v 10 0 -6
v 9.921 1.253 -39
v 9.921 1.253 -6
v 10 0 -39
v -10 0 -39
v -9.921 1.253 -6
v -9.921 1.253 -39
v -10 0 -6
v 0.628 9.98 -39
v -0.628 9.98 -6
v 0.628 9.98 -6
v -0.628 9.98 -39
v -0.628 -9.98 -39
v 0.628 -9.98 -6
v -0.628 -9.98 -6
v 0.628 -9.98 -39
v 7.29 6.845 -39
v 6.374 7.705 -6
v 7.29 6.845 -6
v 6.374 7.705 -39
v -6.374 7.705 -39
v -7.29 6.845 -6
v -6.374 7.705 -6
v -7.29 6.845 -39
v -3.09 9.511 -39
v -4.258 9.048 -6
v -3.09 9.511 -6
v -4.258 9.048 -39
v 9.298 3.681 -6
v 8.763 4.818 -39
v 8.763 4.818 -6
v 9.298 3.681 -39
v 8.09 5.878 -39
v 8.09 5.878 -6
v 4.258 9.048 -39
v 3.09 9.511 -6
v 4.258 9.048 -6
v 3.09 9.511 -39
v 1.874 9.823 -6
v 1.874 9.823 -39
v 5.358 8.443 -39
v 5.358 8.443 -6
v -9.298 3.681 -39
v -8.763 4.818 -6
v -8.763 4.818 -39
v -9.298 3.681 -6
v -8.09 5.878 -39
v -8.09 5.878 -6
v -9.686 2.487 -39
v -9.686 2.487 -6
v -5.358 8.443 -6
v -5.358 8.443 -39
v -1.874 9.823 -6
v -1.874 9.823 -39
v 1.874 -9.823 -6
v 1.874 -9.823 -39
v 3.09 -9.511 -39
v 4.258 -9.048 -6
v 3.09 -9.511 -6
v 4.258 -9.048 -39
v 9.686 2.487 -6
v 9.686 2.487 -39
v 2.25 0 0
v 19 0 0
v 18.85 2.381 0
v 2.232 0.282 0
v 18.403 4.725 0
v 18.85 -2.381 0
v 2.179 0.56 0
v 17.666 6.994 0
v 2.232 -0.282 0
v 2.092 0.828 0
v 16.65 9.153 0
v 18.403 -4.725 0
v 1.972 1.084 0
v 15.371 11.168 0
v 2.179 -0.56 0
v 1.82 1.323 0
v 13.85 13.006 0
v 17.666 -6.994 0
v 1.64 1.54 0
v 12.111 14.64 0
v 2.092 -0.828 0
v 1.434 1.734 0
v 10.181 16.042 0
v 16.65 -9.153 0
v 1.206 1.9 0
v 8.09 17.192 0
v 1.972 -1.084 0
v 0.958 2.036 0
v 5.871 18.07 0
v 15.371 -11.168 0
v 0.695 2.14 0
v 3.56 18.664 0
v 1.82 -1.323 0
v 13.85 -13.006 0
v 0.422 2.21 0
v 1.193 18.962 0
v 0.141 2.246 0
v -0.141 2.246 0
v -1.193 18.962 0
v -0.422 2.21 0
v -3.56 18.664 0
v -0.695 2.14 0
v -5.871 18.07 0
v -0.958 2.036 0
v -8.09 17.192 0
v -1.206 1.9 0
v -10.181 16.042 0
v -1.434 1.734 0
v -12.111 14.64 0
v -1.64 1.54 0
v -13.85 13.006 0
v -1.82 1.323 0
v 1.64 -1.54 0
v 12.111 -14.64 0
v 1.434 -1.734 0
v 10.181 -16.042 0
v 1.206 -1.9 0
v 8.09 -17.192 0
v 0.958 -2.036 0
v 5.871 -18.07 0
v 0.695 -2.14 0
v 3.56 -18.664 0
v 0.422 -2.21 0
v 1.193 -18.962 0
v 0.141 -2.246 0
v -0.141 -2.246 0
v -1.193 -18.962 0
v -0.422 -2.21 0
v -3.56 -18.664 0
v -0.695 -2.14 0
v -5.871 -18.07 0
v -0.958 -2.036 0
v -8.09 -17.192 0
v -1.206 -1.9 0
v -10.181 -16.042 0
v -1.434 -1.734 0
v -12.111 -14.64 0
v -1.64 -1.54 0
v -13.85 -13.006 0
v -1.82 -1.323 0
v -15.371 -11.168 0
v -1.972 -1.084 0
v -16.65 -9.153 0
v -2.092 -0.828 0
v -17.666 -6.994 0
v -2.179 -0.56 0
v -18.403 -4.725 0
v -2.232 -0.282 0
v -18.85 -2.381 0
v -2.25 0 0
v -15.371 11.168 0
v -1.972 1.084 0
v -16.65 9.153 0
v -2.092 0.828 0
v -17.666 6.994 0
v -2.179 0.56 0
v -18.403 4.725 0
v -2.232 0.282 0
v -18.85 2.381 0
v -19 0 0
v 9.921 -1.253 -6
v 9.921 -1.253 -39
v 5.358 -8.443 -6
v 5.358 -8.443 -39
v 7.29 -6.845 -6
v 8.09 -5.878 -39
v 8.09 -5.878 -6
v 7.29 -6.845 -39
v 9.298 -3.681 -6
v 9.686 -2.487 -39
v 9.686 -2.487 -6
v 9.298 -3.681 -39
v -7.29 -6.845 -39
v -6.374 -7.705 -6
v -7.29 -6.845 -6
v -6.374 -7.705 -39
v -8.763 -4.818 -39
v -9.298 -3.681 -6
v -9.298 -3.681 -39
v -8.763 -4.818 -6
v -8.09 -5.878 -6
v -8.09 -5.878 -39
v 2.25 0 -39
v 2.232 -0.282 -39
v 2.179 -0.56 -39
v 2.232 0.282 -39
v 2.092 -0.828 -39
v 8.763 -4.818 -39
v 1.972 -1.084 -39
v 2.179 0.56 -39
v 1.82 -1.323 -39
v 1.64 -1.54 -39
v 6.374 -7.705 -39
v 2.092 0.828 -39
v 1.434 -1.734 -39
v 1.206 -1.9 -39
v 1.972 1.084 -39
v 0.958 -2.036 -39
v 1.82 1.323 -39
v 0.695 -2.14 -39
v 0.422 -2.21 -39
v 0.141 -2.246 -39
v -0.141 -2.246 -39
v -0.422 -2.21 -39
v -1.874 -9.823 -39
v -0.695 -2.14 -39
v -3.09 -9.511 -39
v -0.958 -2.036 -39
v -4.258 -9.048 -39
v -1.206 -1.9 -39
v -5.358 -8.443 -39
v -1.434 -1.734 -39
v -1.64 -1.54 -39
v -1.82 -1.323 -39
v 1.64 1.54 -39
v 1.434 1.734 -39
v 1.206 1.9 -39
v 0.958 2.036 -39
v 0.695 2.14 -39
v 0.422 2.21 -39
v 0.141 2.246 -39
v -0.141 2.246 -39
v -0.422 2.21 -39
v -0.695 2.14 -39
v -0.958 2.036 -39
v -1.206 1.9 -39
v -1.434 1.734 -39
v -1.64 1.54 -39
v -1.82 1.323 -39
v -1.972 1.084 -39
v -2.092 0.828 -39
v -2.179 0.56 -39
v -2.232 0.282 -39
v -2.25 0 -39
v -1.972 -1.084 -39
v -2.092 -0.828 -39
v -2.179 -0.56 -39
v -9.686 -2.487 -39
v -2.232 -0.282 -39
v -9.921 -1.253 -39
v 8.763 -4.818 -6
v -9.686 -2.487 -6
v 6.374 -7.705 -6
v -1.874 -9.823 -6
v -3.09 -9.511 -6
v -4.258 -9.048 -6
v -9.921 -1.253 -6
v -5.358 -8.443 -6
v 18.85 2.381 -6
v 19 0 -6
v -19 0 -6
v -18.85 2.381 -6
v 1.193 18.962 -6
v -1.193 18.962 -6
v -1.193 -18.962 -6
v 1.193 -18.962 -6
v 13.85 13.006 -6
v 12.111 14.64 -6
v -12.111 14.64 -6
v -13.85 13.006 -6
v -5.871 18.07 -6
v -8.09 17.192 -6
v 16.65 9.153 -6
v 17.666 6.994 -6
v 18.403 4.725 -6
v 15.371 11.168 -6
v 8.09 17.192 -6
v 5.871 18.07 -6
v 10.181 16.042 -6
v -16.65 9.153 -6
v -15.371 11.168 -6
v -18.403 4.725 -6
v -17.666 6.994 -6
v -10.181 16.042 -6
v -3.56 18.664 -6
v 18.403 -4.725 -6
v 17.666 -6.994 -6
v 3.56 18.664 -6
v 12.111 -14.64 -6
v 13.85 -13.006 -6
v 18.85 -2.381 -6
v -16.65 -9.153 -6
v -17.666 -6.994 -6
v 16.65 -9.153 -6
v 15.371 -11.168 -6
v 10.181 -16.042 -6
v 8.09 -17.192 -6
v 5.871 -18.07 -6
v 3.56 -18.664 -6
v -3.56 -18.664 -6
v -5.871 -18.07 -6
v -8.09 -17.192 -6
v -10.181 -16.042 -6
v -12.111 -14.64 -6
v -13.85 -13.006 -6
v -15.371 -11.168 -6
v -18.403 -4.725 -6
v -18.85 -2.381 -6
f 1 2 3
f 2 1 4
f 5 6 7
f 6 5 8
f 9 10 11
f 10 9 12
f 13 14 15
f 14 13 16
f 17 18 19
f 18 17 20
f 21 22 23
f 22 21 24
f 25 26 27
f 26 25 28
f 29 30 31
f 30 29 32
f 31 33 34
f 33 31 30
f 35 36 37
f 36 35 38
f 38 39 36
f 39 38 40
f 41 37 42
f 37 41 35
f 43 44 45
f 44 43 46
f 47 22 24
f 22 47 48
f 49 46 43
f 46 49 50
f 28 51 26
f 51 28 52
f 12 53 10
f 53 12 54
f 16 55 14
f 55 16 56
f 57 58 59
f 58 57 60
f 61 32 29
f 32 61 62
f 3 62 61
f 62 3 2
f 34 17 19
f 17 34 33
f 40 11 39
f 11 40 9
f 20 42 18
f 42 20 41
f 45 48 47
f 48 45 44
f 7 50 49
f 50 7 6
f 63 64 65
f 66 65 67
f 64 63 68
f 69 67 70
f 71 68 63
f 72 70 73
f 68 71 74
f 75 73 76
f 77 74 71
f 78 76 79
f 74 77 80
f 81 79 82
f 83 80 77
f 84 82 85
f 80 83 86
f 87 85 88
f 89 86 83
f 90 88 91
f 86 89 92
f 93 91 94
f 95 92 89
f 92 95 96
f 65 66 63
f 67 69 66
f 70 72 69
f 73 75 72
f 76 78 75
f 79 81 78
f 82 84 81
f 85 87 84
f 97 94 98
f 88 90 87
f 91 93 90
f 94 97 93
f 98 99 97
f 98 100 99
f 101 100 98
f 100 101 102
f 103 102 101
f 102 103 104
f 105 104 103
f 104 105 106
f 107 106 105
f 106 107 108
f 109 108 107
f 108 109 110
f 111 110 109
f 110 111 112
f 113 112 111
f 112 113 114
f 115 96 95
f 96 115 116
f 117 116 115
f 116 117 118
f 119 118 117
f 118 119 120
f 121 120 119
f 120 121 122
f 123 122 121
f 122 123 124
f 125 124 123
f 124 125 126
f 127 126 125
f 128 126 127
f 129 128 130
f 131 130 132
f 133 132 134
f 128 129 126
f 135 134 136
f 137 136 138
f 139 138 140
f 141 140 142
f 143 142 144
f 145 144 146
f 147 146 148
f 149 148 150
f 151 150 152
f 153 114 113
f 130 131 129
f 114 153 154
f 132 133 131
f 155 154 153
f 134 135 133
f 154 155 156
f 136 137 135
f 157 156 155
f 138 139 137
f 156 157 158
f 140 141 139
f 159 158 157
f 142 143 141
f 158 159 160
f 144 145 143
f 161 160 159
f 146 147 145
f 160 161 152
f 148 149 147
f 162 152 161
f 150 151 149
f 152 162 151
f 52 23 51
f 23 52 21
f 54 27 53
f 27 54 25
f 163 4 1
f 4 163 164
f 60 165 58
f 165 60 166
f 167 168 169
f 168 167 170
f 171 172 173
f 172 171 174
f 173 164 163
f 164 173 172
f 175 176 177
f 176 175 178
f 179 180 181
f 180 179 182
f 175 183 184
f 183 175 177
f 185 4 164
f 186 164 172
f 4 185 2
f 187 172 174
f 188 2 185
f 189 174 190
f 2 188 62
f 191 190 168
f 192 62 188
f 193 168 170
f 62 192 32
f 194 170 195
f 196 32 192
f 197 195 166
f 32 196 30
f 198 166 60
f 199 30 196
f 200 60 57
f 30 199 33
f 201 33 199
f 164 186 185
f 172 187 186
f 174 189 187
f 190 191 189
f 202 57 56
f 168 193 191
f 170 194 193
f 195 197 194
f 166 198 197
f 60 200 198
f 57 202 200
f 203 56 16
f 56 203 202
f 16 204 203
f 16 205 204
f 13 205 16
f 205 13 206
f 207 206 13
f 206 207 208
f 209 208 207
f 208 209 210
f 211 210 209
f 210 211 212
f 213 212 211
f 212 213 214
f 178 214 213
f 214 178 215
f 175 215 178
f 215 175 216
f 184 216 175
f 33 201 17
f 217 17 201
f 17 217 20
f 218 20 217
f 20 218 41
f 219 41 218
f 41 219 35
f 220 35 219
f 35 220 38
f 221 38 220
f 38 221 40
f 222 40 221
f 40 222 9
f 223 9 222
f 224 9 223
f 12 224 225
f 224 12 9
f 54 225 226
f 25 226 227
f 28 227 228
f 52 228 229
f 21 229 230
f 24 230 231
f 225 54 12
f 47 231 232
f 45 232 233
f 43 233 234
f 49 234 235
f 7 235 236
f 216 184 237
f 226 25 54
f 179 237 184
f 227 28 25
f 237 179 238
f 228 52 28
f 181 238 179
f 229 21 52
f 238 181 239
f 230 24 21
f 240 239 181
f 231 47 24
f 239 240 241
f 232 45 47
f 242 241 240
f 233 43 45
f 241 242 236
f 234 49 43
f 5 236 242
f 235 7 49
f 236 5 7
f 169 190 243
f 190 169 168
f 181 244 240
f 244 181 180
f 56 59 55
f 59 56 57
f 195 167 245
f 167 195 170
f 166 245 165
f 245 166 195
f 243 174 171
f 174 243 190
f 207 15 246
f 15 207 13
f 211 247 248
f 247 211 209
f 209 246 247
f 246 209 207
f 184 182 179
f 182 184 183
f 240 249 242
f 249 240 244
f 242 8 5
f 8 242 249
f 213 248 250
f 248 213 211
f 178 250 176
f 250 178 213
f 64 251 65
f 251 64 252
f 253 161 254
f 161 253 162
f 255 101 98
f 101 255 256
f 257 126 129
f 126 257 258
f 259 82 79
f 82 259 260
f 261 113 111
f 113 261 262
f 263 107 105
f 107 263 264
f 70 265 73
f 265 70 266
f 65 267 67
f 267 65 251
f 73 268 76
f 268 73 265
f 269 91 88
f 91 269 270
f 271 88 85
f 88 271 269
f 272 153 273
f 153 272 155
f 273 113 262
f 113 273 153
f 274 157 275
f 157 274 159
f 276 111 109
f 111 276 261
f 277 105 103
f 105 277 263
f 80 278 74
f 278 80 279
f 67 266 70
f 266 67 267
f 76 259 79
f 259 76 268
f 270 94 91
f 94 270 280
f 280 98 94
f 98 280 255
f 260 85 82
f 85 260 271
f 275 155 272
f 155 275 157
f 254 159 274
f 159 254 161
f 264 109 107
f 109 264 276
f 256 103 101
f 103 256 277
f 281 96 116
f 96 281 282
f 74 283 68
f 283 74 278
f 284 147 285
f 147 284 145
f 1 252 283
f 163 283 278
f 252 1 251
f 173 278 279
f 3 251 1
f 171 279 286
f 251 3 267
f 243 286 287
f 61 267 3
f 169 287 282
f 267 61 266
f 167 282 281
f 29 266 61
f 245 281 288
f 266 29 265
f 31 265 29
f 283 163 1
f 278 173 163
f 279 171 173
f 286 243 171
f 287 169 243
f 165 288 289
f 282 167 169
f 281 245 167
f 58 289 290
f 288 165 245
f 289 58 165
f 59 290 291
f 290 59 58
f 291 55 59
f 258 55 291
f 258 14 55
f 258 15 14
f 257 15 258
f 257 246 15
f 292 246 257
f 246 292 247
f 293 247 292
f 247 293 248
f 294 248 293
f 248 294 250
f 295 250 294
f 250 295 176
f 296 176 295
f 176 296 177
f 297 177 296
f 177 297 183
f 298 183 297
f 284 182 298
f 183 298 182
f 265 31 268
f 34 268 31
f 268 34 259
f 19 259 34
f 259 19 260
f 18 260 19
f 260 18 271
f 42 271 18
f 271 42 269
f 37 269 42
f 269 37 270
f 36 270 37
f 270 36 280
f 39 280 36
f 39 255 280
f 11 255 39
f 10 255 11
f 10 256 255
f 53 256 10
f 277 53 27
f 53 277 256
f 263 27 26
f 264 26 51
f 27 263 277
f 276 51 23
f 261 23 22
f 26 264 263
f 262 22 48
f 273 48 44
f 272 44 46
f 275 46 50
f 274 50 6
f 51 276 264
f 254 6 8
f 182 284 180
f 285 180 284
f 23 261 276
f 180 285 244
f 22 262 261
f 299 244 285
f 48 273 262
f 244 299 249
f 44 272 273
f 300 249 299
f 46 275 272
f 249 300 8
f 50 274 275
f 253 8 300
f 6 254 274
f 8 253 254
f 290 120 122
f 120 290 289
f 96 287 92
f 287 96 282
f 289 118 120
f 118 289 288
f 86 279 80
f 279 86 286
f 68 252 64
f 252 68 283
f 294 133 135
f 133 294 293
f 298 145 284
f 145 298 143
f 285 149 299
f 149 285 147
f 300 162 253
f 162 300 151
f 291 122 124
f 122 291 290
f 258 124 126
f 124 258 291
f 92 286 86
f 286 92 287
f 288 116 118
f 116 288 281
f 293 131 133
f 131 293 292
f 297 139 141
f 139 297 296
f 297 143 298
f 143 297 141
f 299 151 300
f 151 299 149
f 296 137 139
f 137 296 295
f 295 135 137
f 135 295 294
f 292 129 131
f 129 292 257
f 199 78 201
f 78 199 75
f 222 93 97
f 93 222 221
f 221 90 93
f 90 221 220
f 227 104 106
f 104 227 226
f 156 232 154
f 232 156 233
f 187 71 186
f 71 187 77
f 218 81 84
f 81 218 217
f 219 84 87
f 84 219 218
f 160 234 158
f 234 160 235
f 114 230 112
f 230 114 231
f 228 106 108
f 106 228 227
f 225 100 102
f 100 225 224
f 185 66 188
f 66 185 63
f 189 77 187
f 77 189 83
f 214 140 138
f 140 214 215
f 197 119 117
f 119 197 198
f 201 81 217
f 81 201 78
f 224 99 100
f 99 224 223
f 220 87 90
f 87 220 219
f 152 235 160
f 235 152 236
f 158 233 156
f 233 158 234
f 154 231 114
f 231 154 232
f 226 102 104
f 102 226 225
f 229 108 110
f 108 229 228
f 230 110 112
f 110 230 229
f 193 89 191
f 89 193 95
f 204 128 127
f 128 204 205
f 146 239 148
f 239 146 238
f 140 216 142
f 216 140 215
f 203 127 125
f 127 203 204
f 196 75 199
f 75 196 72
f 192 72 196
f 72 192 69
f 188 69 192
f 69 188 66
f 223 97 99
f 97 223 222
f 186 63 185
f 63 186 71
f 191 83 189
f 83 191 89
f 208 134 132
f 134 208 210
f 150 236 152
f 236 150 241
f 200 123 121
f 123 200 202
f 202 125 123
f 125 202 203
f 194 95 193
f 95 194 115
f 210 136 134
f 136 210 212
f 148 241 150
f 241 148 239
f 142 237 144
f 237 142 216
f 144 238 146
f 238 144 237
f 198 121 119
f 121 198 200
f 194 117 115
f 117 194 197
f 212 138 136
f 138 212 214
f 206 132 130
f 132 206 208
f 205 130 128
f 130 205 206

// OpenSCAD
$fn = 50;


difference() {
	union() {
		translate(v = [0, 0, -39.0000000000]) {
			cylinder(h = 39, r = 10.0000000000);
		}
		translate(v = [0, 0, -6.0000000000]) {
			cylinder(h = 6, r = 19.0000000000);
		}
	}
	union() {
		#translate(v = [0, 0, -39]) {
			cylinder(h = 39, r = 2.2500000000);
		}
	}
}
